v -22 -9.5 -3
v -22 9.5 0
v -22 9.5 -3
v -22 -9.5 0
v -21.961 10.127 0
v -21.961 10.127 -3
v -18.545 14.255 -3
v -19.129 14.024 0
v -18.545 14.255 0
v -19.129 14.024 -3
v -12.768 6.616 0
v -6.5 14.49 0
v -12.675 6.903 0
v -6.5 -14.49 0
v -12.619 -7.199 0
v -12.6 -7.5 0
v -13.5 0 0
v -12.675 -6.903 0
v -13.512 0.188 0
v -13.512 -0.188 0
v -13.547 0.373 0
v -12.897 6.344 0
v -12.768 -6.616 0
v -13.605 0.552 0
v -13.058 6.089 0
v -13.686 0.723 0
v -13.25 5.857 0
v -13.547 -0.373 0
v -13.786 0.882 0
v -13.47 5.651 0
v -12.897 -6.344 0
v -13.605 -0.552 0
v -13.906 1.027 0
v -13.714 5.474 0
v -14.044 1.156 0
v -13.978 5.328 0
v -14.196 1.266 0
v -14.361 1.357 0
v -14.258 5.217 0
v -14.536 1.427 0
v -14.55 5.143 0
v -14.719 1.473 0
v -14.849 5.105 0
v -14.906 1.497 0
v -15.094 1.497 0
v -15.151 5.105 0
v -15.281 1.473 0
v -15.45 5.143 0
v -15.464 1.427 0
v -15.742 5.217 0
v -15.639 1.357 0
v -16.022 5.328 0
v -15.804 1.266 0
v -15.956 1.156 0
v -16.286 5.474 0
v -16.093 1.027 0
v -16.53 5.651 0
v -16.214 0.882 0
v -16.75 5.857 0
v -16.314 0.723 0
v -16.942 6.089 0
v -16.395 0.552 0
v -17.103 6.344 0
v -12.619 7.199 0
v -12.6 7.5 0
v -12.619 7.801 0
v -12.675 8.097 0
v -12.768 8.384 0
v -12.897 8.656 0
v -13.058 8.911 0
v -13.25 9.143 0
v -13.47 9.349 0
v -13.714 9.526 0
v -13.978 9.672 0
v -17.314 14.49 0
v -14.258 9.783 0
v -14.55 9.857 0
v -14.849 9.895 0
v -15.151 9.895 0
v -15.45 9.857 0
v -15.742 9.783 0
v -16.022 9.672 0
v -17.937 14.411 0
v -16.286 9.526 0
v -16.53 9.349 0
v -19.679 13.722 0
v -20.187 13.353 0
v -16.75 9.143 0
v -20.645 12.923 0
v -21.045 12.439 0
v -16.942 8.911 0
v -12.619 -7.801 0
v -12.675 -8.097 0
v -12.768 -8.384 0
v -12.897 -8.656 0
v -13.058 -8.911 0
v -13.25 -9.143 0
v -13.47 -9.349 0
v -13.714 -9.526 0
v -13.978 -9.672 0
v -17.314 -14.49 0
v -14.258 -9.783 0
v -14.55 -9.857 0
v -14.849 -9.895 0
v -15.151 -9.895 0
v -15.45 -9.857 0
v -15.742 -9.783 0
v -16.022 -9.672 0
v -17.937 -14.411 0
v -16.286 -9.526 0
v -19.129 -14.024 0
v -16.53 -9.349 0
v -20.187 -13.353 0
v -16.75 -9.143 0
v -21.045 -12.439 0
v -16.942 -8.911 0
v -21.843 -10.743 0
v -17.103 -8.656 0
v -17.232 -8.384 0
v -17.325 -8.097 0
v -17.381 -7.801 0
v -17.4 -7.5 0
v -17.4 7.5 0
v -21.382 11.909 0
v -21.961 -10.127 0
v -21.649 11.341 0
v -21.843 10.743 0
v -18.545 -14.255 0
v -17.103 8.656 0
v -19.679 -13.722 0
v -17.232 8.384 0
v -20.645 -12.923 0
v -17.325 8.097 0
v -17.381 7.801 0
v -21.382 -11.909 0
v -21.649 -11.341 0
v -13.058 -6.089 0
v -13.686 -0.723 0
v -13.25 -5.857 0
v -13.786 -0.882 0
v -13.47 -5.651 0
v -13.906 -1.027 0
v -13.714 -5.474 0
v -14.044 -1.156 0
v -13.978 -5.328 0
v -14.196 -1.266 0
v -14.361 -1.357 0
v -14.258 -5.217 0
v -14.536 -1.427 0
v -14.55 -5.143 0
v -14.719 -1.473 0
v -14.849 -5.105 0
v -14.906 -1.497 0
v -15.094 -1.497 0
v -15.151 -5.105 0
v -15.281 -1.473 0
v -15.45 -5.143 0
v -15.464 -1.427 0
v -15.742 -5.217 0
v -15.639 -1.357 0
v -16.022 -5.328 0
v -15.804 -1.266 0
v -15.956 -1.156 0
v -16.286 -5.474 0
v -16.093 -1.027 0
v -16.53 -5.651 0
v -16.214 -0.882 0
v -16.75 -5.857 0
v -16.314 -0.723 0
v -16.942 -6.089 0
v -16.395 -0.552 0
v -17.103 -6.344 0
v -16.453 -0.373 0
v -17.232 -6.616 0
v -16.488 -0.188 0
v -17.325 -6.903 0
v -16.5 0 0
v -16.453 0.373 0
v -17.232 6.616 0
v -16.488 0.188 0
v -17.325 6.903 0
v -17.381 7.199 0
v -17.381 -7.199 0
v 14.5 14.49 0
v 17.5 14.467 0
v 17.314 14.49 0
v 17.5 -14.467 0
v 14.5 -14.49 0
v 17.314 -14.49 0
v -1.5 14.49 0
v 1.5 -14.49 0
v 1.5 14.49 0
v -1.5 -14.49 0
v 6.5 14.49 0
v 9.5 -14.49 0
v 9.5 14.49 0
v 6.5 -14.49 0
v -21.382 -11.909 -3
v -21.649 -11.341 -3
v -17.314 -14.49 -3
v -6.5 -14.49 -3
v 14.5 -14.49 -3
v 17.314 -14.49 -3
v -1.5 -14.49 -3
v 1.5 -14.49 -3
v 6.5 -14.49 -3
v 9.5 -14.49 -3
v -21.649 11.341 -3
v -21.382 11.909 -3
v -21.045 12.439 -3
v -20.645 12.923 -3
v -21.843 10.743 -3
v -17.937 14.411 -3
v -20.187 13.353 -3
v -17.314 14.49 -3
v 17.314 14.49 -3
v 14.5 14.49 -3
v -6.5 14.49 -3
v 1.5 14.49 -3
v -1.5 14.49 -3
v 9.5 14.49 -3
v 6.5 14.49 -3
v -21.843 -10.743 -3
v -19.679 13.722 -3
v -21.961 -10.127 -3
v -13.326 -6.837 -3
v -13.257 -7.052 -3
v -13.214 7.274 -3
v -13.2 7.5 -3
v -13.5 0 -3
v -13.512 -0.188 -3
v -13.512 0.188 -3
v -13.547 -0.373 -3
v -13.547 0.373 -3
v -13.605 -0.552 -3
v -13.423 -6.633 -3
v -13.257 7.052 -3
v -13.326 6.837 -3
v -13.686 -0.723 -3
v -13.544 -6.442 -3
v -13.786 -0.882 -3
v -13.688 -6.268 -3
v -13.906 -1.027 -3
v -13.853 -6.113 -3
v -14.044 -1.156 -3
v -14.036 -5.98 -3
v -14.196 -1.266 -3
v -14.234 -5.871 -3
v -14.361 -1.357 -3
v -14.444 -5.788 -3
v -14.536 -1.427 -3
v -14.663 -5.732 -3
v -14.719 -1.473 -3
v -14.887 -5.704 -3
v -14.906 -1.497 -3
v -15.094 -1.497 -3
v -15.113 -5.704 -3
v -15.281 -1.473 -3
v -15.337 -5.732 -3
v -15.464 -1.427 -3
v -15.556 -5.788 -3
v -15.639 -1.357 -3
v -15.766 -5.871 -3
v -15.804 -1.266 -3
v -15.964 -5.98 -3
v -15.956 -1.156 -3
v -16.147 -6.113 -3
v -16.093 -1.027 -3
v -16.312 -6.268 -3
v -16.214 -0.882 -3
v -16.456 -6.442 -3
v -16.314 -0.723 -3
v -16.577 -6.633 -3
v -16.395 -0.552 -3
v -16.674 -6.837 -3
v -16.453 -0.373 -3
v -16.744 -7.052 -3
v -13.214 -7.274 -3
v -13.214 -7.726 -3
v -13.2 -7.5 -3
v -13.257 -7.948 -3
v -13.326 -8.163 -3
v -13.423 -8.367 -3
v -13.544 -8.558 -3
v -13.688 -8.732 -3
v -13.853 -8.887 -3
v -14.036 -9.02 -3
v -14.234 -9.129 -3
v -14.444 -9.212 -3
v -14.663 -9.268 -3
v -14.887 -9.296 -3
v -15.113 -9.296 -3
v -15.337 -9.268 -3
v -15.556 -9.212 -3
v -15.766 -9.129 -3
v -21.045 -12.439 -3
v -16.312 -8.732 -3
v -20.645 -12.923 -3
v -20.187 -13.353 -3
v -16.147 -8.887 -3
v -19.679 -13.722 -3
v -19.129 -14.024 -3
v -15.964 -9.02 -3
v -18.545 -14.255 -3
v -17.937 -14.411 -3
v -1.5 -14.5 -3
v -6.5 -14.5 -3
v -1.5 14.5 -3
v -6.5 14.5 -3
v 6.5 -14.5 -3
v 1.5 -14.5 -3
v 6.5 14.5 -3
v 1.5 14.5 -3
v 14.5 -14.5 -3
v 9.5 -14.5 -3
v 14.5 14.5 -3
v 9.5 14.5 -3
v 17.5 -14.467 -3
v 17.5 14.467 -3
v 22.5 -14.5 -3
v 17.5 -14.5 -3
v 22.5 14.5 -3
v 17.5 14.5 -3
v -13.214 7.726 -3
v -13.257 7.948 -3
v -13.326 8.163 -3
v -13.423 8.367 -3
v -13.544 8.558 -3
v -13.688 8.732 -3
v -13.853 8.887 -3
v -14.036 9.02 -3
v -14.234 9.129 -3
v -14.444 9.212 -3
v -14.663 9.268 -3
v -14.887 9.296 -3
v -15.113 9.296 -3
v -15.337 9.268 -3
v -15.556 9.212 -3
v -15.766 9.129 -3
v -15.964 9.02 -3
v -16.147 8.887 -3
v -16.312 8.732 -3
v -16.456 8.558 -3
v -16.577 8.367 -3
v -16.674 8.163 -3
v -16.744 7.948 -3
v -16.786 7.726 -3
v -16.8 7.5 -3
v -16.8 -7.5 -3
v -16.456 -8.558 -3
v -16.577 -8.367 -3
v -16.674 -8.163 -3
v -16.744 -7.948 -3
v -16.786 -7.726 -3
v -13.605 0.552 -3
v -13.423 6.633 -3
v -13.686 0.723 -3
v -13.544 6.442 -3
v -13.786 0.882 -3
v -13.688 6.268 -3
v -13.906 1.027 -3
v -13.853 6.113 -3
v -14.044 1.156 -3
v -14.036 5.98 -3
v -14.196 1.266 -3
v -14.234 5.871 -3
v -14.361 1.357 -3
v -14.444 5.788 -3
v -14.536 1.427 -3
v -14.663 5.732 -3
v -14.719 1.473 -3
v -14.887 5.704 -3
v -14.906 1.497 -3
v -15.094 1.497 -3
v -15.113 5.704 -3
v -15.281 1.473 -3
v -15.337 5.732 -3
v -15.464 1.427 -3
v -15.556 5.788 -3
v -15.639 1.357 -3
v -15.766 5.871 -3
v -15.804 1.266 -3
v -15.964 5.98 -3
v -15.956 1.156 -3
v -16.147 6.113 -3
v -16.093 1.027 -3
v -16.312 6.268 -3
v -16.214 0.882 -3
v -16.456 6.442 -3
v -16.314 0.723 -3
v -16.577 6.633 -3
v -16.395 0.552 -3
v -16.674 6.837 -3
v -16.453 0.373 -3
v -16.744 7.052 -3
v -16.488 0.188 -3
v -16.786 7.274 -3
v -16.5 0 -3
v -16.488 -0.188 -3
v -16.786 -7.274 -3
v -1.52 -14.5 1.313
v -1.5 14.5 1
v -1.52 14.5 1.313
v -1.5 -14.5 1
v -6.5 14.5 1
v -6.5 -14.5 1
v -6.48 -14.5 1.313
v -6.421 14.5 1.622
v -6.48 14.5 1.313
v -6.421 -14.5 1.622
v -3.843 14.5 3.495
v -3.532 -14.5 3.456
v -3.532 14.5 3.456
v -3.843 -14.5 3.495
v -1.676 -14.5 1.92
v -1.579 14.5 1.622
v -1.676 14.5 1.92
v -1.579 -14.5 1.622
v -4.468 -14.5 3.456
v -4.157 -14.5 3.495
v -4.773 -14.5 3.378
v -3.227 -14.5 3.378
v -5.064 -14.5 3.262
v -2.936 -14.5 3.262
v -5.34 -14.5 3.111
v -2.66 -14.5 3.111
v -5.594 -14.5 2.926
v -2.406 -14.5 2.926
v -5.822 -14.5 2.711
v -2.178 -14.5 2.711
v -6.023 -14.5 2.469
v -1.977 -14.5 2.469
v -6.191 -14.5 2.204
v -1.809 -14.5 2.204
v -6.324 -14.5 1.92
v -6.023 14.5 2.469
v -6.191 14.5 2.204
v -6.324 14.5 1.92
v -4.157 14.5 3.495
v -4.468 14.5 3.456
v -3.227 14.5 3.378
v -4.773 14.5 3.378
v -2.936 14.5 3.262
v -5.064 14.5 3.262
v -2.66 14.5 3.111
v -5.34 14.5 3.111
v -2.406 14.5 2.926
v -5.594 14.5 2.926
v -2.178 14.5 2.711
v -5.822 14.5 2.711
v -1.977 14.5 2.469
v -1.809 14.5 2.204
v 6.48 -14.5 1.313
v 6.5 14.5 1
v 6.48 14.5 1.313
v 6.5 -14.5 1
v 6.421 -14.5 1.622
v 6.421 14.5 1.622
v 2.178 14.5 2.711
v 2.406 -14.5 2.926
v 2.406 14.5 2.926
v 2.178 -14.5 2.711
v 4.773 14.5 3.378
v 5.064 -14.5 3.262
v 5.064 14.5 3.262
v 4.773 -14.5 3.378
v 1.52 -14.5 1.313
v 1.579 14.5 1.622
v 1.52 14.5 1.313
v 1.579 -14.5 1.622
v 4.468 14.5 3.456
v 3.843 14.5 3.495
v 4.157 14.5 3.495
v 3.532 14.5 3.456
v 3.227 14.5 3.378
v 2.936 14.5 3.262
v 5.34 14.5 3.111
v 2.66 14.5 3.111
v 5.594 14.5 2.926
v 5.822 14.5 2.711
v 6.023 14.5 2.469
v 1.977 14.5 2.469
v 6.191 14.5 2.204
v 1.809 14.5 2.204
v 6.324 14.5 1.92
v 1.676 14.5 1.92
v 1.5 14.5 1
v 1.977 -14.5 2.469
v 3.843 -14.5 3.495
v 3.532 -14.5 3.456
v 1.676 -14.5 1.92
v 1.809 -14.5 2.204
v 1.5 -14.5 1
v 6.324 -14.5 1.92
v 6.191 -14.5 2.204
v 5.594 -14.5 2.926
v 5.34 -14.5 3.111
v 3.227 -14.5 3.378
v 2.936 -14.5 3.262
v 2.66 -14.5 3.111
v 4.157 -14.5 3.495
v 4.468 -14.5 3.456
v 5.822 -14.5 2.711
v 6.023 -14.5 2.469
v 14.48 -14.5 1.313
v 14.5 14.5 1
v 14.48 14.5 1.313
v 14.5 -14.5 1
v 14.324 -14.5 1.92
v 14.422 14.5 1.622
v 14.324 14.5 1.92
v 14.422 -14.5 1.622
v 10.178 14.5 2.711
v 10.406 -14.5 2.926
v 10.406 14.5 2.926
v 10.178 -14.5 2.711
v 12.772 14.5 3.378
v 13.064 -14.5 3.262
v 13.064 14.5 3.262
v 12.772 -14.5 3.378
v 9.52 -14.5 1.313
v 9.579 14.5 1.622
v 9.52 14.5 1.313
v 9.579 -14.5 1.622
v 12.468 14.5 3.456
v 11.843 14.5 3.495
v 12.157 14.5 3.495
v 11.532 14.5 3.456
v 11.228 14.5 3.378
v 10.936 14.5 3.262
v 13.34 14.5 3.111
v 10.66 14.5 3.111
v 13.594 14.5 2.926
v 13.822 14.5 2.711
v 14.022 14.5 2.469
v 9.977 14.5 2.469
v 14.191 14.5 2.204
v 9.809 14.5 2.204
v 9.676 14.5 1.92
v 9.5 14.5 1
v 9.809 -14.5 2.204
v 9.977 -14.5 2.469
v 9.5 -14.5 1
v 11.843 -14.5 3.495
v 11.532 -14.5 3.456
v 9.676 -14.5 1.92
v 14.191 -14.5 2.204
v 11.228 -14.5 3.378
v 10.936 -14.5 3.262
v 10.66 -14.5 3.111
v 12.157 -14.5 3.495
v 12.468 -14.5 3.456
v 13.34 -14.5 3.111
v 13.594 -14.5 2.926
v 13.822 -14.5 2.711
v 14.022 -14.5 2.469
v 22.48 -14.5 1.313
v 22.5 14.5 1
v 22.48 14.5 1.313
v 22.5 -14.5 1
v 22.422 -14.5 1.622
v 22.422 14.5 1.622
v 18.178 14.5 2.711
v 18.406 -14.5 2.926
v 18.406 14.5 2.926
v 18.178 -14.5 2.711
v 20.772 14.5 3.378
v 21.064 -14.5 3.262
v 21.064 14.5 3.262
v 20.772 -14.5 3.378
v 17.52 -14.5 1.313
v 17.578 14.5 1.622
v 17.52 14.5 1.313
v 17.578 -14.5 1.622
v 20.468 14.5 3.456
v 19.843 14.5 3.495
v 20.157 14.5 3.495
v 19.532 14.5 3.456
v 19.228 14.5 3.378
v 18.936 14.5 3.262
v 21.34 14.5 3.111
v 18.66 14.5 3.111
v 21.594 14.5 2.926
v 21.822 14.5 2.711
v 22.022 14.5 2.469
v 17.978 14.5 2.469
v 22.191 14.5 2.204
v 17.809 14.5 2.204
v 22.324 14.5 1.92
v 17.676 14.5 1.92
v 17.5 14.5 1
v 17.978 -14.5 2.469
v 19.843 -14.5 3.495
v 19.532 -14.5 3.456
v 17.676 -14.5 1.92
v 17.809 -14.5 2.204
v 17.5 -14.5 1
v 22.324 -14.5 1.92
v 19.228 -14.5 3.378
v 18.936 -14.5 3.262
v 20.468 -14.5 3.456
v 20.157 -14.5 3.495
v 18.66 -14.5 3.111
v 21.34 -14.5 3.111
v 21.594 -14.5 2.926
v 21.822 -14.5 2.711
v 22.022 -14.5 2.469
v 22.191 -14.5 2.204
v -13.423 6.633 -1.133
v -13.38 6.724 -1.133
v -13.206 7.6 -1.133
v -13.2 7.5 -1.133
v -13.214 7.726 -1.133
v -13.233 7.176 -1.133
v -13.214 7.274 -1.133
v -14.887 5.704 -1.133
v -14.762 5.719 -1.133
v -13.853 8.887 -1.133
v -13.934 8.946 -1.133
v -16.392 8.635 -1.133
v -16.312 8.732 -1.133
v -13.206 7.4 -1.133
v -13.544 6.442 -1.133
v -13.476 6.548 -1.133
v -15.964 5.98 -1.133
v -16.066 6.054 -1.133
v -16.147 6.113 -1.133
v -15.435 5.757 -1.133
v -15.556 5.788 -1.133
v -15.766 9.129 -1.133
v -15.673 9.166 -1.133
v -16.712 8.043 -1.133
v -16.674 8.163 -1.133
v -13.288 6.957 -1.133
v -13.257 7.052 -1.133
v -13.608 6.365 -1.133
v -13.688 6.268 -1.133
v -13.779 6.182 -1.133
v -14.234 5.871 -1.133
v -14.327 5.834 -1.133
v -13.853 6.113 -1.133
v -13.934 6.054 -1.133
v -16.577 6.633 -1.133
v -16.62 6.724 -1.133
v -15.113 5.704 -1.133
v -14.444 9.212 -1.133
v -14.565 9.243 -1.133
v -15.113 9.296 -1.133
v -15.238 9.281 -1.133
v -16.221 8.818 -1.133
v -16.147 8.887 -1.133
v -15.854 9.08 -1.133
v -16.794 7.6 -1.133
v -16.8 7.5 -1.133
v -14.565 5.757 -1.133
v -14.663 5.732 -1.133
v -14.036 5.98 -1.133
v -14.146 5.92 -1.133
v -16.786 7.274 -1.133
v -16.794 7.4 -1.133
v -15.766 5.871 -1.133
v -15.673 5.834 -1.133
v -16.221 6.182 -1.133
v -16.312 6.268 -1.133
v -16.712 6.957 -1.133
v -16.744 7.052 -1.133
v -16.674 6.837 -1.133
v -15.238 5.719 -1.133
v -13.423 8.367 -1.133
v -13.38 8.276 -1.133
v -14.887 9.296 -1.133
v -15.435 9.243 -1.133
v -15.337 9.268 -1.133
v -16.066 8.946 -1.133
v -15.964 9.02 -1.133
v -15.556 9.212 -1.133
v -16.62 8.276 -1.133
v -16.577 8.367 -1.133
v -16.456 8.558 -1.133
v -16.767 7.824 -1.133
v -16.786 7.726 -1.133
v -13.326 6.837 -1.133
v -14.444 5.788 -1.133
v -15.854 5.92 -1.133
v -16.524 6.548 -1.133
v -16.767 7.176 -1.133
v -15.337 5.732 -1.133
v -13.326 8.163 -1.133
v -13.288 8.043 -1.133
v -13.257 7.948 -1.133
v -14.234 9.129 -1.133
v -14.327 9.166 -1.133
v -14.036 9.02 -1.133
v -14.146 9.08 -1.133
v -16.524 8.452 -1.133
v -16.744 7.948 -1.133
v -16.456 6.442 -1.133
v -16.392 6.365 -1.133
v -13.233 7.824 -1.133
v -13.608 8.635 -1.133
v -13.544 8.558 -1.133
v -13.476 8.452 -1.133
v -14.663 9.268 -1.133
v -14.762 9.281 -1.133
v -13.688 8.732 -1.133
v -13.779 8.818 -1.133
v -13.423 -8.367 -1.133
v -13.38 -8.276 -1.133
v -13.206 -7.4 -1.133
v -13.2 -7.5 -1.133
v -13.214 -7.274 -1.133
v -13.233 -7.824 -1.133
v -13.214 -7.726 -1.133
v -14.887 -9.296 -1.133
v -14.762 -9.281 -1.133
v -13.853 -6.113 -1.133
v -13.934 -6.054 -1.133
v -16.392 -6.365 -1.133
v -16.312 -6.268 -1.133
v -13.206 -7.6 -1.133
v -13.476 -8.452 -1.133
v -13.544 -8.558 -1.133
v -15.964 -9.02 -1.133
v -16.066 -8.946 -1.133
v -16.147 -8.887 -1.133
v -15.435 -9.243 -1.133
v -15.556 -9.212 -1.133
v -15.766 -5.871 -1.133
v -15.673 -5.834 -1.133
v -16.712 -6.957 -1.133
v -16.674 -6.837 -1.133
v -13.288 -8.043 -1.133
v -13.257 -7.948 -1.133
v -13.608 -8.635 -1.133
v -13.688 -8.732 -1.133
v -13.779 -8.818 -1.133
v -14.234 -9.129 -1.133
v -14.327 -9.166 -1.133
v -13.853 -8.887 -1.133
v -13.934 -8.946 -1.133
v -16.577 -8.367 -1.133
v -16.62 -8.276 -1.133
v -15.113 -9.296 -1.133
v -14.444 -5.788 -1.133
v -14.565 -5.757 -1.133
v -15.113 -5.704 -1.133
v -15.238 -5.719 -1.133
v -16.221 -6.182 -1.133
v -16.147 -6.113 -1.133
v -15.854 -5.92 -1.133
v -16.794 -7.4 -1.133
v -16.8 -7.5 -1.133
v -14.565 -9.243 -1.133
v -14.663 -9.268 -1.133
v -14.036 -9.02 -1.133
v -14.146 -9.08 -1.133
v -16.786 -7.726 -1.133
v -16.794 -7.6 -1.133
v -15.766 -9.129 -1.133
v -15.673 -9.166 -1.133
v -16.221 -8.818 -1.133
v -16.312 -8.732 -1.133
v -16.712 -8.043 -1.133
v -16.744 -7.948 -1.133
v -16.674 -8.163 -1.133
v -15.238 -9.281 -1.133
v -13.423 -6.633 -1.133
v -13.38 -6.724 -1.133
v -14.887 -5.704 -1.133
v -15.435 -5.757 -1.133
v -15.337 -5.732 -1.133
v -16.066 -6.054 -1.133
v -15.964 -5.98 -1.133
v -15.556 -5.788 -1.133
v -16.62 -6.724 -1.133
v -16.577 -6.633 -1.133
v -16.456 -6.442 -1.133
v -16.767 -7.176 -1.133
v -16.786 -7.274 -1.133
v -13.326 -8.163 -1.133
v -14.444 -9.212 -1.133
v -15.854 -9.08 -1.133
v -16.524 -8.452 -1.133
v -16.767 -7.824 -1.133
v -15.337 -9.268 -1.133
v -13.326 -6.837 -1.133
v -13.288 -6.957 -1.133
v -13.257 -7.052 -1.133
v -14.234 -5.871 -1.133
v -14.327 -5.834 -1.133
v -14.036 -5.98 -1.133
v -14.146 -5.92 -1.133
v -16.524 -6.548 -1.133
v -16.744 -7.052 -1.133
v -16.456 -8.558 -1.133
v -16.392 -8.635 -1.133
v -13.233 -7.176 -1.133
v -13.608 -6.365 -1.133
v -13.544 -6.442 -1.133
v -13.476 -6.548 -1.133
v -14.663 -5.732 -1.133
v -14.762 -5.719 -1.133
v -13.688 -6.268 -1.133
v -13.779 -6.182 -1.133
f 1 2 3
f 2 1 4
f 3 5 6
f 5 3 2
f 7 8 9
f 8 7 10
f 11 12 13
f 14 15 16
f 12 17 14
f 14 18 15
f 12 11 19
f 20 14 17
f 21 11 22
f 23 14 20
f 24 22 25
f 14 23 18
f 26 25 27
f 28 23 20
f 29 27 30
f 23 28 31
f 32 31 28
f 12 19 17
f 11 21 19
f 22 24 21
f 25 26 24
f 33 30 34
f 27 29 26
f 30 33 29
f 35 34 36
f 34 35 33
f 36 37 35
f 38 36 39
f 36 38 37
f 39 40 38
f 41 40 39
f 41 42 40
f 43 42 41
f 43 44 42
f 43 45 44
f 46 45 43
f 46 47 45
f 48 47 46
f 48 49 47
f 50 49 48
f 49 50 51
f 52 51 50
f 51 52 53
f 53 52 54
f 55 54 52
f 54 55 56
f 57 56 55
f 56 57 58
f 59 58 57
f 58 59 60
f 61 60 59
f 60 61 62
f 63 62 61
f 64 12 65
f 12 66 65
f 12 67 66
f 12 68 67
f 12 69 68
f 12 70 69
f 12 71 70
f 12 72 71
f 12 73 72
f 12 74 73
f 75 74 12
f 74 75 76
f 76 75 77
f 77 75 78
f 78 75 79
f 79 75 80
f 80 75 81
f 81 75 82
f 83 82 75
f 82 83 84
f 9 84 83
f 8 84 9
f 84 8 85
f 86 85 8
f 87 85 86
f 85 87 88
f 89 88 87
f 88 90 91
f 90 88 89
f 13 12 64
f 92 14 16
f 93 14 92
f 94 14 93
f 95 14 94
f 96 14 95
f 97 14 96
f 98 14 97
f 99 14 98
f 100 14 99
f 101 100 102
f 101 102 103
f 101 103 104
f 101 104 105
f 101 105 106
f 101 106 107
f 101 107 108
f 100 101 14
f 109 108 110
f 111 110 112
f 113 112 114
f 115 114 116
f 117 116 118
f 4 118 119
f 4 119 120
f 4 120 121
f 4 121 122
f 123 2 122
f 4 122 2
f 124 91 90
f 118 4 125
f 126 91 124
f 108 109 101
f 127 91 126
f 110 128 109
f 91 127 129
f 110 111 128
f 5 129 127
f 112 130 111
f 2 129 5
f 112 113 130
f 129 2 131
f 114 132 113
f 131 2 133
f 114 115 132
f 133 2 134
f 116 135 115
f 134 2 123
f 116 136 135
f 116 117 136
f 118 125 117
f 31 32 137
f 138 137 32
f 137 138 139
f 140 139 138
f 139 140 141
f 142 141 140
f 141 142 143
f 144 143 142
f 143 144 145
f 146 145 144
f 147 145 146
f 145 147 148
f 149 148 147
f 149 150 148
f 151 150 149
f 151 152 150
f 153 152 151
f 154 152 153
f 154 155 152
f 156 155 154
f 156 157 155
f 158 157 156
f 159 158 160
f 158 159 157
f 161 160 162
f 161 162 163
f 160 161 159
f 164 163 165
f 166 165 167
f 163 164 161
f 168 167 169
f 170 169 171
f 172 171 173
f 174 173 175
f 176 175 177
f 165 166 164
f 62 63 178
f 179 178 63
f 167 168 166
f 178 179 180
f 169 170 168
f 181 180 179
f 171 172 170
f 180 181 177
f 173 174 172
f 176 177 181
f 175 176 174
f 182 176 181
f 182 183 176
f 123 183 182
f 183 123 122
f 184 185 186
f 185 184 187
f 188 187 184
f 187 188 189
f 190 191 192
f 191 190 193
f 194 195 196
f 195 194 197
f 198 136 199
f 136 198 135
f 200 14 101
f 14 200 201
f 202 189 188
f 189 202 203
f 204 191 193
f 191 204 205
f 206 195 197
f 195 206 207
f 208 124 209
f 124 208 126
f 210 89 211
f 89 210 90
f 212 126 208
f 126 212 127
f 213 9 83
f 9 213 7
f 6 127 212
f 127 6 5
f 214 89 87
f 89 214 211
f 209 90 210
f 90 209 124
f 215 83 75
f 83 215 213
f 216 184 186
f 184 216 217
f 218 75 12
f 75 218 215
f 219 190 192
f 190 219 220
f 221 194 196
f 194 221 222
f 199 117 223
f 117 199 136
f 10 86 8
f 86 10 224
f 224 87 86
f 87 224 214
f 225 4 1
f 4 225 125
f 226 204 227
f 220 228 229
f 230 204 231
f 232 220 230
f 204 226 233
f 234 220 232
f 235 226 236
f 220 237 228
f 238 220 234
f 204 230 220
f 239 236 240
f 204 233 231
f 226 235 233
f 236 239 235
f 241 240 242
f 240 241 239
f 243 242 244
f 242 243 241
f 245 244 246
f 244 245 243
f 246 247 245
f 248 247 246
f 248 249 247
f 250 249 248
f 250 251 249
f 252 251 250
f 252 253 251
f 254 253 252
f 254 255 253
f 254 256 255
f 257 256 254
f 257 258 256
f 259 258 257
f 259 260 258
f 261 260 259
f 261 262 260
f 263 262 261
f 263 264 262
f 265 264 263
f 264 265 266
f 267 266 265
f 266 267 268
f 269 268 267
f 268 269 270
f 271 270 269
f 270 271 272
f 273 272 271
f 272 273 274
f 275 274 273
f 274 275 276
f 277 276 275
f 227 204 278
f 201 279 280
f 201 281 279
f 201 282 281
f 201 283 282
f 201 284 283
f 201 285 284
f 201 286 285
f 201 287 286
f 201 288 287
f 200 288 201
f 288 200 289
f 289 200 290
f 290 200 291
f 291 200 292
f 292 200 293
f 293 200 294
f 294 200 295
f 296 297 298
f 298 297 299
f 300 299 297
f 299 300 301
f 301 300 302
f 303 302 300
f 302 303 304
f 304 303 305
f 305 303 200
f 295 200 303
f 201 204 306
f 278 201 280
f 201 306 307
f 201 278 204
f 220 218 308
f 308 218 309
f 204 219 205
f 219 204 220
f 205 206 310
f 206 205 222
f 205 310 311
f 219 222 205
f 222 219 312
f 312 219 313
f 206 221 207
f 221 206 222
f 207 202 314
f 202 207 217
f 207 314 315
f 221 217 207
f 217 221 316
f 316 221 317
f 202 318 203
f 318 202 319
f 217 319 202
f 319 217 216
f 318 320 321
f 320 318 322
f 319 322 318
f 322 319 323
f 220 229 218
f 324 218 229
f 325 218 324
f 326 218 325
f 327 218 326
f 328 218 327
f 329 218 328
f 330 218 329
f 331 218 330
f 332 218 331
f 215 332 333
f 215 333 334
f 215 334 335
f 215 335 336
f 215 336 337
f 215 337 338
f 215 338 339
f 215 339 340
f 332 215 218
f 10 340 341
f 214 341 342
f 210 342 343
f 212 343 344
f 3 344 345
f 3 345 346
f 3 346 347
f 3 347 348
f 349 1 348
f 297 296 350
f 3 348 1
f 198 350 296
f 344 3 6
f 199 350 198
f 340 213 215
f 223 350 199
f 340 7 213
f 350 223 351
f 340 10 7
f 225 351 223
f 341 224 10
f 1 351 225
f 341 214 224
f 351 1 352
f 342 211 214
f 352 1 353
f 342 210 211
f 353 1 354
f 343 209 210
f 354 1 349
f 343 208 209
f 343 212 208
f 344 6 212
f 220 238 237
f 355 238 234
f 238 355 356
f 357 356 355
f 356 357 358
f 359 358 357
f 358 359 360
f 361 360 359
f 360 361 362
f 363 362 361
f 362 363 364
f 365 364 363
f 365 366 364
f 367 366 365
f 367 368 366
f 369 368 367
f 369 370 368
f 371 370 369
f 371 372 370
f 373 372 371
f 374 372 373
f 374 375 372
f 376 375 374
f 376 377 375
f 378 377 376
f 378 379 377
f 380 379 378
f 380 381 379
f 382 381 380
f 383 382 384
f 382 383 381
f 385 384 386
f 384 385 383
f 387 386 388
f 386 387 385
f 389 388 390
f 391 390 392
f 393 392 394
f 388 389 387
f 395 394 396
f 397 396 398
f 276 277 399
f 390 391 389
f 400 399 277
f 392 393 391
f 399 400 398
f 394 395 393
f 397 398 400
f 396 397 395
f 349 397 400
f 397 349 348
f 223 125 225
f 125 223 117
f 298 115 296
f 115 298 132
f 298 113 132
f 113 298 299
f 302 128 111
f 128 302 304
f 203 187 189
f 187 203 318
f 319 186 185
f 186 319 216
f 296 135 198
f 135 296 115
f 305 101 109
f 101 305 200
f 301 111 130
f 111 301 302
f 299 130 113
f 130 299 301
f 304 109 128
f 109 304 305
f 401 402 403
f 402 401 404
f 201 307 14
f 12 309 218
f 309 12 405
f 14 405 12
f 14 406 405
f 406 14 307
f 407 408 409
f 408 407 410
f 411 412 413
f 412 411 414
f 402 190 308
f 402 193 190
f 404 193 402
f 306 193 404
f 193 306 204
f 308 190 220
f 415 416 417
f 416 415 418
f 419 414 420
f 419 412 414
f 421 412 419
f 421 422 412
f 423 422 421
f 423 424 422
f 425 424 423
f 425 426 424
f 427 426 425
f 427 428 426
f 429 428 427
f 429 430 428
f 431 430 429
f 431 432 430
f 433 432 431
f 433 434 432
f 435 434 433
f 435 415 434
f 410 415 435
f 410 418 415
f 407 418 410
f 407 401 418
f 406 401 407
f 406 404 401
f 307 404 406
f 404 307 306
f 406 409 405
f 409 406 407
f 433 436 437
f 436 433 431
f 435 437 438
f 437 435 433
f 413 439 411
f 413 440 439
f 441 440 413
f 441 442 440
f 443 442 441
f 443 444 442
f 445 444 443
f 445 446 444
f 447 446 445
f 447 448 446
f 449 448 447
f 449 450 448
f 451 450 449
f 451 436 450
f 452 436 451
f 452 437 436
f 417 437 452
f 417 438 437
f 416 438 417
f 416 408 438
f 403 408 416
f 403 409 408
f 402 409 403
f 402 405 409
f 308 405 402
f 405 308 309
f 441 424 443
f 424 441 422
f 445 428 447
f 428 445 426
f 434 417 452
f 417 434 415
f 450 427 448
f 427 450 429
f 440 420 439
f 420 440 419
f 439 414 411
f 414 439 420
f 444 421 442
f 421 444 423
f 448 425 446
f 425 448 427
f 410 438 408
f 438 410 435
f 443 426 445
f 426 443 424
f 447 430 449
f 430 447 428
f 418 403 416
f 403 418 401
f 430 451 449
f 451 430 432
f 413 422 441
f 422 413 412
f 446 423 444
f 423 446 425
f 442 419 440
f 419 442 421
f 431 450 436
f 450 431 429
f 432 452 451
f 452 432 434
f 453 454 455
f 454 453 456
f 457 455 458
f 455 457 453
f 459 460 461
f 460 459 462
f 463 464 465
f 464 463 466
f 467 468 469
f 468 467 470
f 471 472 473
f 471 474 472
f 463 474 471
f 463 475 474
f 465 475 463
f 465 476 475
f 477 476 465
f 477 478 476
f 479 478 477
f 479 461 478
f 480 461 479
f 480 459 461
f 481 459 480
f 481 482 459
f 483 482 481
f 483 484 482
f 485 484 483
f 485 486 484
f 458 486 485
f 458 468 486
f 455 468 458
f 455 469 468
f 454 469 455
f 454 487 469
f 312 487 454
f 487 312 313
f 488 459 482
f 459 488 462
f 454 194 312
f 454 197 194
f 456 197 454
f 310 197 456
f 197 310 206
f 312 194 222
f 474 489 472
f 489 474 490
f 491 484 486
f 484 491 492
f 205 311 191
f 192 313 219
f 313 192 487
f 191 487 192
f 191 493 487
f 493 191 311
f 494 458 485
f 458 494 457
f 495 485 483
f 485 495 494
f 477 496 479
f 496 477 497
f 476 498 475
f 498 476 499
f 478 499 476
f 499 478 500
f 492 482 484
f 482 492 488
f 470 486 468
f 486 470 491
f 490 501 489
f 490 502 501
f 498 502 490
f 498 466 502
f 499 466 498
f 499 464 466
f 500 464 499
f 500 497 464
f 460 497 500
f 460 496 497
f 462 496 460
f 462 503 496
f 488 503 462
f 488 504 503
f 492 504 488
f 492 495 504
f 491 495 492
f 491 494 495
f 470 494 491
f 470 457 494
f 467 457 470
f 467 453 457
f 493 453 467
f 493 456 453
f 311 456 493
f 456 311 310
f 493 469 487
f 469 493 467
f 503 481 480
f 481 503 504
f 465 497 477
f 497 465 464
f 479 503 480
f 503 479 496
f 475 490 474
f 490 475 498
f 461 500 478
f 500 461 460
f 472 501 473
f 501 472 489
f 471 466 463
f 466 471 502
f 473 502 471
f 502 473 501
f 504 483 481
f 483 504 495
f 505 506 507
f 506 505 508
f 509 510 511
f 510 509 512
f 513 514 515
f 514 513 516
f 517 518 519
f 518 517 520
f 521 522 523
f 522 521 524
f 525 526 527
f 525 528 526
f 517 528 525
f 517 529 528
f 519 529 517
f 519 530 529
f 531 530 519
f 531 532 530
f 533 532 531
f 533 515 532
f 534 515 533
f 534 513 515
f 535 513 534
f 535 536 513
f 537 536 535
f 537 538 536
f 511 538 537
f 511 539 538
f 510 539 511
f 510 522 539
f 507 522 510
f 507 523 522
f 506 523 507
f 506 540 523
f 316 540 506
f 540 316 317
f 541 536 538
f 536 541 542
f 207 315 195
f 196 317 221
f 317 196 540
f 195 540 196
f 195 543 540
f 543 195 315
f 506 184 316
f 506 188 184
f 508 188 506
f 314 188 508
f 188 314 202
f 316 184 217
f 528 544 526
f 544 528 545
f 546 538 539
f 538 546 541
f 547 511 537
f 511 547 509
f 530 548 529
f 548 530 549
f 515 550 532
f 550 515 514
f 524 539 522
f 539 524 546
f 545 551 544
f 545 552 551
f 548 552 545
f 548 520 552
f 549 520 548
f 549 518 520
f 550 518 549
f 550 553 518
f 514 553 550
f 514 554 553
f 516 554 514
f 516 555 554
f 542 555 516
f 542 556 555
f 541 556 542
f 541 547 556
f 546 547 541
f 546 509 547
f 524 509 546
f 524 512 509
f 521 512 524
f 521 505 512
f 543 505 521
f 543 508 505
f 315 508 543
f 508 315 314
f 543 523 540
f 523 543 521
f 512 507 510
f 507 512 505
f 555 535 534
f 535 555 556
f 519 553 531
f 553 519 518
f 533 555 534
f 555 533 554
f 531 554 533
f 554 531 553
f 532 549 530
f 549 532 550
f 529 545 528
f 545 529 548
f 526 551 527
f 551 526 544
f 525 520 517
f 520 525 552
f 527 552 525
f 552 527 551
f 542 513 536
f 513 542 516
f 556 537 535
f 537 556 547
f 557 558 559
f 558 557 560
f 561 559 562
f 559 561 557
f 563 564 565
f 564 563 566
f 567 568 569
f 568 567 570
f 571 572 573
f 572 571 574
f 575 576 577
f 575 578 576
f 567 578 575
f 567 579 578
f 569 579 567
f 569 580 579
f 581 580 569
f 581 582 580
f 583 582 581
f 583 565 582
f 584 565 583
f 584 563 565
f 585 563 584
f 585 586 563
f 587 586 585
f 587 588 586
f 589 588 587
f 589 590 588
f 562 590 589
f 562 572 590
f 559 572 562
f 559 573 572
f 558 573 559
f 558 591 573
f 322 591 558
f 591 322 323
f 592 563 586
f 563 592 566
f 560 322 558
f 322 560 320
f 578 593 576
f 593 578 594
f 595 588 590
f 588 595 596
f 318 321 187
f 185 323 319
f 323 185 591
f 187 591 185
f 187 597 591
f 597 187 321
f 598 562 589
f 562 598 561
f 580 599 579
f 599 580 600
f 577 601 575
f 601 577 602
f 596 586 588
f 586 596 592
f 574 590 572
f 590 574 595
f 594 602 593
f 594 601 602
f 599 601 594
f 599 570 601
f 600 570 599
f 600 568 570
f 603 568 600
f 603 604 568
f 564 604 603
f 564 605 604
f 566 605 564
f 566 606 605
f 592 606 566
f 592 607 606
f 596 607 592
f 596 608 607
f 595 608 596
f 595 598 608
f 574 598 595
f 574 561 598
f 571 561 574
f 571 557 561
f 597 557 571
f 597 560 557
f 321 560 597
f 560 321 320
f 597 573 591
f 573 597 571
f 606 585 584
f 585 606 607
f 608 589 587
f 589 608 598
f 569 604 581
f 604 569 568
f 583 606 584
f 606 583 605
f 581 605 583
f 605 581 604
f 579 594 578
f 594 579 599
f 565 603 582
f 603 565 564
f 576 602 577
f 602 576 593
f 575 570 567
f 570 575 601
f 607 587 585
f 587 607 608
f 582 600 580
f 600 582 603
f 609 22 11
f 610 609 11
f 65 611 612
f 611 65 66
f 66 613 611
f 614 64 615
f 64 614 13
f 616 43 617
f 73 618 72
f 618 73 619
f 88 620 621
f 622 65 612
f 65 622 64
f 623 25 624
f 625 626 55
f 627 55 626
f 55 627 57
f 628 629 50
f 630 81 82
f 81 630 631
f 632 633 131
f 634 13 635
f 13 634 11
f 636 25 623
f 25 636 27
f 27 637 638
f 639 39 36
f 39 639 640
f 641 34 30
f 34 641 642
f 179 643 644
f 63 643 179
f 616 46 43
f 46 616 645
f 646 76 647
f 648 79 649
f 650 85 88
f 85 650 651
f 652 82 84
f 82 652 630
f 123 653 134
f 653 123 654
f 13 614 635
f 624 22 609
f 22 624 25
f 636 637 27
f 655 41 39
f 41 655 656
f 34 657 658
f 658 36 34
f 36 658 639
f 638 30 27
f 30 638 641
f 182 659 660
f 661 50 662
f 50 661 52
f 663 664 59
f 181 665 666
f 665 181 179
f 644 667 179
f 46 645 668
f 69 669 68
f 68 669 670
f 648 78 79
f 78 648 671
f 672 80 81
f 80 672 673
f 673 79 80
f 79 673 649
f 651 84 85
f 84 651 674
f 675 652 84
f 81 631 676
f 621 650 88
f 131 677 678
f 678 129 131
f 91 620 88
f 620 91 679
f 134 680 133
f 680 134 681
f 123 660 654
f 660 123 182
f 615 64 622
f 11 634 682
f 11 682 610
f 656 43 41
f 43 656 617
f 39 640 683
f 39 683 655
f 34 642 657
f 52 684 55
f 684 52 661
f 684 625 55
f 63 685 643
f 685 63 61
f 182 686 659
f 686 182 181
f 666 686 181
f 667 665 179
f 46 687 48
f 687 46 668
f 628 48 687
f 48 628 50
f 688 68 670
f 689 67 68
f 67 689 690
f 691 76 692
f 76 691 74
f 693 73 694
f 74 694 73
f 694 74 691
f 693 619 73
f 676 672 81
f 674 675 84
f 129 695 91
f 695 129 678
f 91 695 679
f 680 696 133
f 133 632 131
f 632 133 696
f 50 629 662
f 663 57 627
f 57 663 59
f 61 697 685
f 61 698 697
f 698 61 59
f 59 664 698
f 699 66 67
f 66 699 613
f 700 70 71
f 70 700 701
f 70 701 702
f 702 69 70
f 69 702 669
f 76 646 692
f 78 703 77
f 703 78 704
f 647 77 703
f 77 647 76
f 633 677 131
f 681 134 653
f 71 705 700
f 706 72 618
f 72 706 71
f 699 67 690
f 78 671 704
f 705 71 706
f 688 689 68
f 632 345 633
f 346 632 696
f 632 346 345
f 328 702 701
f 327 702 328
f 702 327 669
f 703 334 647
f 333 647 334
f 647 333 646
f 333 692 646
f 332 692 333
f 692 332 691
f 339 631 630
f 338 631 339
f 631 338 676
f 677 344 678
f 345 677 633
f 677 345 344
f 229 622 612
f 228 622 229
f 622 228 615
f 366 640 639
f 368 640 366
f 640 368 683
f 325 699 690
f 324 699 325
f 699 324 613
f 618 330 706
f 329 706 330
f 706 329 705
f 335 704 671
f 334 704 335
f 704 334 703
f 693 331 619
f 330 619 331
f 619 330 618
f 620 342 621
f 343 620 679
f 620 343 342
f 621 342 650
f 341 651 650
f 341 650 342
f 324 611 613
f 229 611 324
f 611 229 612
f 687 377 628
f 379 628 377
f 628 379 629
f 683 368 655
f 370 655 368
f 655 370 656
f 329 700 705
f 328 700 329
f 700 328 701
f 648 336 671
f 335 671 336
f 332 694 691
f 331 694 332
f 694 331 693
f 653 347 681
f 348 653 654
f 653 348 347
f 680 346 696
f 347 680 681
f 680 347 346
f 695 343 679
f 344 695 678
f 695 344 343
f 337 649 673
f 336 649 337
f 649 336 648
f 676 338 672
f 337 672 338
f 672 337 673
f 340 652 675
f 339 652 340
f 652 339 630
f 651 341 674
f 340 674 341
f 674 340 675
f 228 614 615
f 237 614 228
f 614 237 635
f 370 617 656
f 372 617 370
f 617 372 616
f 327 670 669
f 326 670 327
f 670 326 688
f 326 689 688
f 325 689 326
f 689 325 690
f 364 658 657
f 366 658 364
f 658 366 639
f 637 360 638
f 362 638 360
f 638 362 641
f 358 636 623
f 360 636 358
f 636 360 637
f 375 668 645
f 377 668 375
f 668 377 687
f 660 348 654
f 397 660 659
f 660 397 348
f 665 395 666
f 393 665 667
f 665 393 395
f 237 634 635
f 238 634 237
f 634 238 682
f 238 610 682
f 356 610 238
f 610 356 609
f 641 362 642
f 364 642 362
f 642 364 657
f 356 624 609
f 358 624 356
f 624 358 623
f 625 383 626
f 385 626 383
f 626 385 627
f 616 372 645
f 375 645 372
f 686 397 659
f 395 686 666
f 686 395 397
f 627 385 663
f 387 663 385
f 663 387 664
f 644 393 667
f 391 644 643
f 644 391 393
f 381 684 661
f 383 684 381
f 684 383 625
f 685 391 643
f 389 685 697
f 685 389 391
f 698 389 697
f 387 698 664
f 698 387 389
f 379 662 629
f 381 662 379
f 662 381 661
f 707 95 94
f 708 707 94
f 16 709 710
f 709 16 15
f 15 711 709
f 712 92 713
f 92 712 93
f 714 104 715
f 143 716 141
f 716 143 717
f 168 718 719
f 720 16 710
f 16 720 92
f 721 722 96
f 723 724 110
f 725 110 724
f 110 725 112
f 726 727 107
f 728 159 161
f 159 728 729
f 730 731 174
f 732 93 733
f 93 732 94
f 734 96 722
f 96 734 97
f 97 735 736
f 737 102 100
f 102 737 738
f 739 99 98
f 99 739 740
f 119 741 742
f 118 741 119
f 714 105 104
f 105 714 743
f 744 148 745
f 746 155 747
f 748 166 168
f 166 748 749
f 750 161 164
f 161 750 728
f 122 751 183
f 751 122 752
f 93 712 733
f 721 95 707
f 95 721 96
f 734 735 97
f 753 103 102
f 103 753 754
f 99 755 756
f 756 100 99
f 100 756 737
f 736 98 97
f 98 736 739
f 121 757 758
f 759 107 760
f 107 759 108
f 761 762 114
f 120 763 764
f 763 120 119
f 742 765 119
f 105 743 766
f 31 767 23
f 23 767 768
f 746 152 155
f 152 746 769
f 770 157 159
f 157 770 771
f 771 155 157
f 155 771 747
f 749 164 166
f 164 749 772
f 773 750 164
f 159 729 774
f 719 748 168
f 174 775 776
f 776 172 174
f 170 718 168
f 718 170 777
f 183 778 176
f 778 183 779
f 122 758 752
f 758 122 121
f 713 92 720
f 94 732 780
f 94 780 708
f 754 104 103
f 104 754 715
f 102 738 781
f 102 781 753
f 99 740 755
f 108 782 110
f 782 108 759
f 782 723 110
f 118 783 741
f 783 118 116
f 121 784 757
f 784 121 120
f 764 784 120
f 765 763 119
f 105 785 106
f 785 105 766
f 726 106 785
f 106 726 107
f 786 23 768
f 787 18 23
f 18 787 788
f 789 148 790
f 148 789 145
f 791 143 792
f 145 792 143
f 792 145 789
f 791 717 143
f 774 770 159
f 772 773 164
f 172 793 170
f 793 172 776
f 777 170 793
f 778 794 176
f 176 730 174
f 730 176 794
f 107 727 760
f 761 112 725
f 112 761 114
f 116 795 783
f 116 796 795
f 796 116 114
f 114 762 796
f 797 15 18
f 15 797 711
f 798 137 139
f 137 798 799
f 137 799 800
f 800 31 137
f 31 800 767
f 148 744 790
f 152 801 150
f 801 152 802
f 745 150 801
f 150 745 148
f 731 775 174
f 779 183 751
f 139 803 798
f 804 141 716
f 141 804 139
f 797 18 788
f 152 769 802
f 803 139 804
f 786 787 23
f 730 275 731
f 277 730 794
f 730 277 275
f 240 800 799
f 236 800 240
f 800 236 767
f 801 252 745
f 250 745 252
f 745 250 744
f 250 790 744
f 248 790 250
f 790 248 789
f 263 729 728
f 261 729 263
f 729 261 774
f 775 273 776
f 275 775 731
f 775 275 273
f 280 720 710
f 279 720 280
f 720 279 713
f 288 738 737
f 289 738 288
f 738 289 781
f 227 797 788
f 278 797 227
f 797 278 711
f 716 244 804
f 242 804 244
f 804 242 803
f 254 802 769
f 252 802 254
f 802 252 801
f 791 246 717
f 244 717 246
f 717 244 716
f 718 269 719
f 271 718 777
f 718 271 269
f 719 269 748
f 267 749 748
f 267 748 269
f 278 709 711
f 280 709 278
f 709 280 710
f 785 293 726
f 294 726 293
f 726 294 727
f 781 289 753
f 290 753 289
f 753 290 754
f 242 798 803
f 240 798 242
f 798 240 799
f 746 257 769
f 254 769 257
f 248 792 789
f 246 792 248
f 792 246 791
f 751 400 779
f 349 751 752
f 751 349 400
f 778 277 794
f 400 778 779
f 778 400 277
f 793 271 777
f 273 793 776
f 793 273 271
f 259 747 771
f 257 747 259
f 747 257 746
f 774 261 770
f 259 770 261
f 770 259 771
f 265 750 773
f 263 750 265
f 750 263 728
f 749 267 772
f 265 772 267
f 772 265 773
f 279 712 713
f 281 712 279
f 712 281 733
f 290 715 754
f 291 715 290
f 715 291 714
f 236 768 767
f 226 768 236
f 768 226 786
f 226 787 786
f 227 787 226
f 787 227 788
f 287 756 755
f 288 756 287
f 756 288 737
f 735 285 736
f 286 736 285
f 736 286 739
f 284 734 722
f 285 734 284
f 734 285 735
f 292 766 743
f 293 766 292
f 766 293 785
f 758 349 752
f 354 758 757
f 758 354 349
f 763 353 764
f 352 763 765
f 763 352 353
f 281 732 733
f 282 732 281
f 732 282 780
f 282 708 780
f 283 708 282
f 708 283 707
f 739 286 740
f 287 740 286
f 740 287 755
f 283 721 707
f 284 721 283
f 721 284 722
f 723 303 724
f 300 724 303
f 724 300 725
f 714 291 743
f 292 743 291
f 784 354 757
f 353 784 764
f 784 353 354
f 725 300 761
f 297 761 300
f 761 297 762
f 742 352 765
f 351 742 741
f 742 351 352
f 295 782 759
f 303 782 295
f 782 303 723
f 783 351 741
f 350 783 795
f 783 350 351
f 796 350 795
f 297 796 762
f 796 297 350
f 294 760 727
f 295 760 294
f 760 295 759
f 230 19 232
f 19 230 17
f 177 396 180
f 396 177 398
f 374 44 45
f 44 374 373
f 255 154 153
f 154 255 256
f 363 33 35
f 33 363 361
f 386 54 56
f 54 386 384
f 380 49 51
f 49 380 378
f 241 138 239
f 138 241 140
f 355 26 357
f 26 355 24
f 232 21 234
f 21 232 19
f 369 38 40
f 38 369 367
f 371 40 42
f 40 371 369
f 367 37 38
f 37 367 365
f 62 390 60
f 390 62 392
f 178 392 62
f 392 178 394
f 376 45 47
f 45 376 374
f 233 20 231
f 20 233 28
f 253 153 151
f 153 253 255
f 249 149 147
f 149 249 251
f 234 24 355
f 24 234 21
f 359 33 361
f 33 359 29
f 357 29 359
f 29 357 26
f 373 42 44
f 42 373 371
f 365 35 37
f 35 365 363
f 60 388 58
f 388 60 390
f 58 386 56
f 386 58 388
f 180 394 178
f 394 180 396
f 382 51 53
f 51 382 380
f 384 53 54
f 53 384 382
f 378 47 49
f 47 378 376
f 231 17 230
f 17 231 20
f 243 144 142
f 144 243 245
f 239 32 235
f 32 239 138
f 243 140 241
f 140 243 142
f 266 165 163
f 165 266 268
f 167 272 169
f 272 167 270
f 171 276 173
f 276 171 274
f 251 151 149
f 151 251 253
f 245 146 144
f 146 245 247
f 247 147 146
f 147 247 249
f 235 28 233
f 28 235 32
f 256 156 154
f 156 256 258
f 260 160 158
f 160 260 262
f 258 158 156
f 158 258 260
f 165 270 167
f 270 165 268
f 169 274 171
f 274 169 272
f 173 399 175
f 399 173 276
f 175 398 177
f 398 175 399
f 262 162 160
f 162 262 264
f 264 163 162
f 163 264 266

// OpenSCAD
$fn = 50;


difference() {
	union() {
		translate(v = [0, 0, -3]) {
			hull() {
				translate(v = [-17.0000000000, 9.5000000000, 0]) {
					cylinder(h = 3, r = 5);
				}
				translate(v = [17.0000000000, 9.5000000000, 0]) {
					cylinder(h = 3, r = 5);
				}
				translate(v = [-17.0000000000, -9.5000000000, 0]) {
					cylinder(h = 3, r = 5);
				}
				translate(v = [17.0000000000, -9.5000000000, 0]) {
					cylinder(h = 3, r = 5);
				}
			}
		}
		translate(v = [-4.0000000000, 14.5000000000, -1.5000000000]) {
			rotate(a = [90, 0, 0]) {
				hull() {
					translate(v = [-0.0000000000, 2.5000000000, 0]) {
						cylinder(h = 29, r = 2.5000000000);
					}
					translate(v = [0.0000000000, 2.5000000000, 0]) {
						cylinder(h = 29, r = 2.5000000000);
					}
					translate(v = [-0.0000000000, -2.5000000000, 0]) {
						cylinder(h = 29, r = 2.5000000000);
					}
					translate(v = [0.0000000000, -2.5000000000, 0]) {
						cylinder(h = 29, r = 2.5000000000);
					}
				}
			}
		}
		translate(v = [4.0000000000, 14.5000000000, -1.5000000000]) {
			rotate(a = [90, 0, 0]) {
				hull() {
					translate(v = [-0.0000000000, 2.5000000000, 0]) {
						cylinder(h = 29, r = 2.5000000000);
					}
					translate(v = [0.0000000000, 2.5000000000, 0]) {
						cylinder(h = 29, r = 2.5000000000);
					}
					translate(v = [-0.0000000000, -2.5000000000, 0]) {
						cylinder(h = 29, r = 2.5000000000);
					}
					translate(v = [0.0000000000, -2.5000000000, 0]) {
						cylinder(h = 29, r = 2.5000000000);
					}
				}
			}
		}
		translate(v = [12.0000000000, 14.5000000000, -1.5000000000]) {
			rotate(a = [90, 0, 0]) {
				hull() {
					translate(v = [-0.0000000000, 2.5000000000, 0]) {
						cylinder(h = 29, r = 2.5000000000);
					}
					translate(v = [0.0000000000, 2.5000000000, 0]) {
						cylinder(h = 29, r = 2.5000000000);
					}
					translate(v = [-0.0000000000, -2.5000000000, 0]) {
						cylinder(h = 29, r = 2.5000000000);
					}
					translate(v = [0.0000000000, -2.5000000000, 0]) {
						cylinder(h = 29, r = 2.5000000000);
					}
				}
			}
		}
		translate(v = [20.0000000000, 14.5000000000, -1.5000000000]) {
			rotate(a = [90, 0, 0]) {
				hull() {
					translate(v = [-0.0000000000, 2.5000000000, 0]) {
						cylinder(h = 29, r = 2.5000000000);
					}
					translate(v = [0.0000000000, 2.5000000000, 0]) {
						cylinder(h = 29, r = 2.5000000000);
					}
					translate(v = [-0.0000000000, -2.5000000000, 0]) {
						cylinder(h = 29, r = 2.5000000000);
					}
					translate(v = [0.0000000000, -2.5000000000, 0]) {
						cylinder(h = 29, r = 2.5000000000);
					}
				}
			}
		}
	}
	union() {
		translate(v = [-15.0000000000, 7.5000000000, 0]) {
			rotate(a = [0, 0, 0]) {
				difference() {
					union() {
						translate(v = [0, 0, -1.7000000000]) {
							cylinder(h = 1.7000000000, r1 = 1.5000000000, r2 = 2.4000000000);
						}
						translate(v = [0, 0, -3.0000000000]) {
							cylinder(h = 3, r = 1.5000000000);
						}
						translate(v = [0, 0, -3.0000000000]) {
							cylinder(h = 3, r = 1.8000000000);
						}
						translate(v = [0, 0, -3.0000000000]) {
							cylinder(h = 3, r = 1.5000000000);
						}
					}
					union();
				}
			}
		}
		translate(v = [-15.0000000000, -7.5000000000, 0]) {
			rotate(a = [0, 0, 0]) {
				difference() {
					union() {
						translate(v = [0, 0, -1.7000000000]) {
							cylinder(h = 1.7000000000, r1 = 1.5000000000, r2 = 2.4000000000);
						}
						translate(v = [0, 0, -3.0000000000]) {
							cylinder(h = 3, r = 1.5000000000);
						}
						translate(v = [0, 0, -3.0000000000]) {
							cylinder(h = 3, r = 1.8000000000);
						}
						translate(v = [0, 0, -3.0000000000]) {
							cylinder(h = 3, r = 1.5000000000);
						}
					}
					union();
				}
			}
		}
		translate(v = [-250.0000000000, -250.0000000000, -503]) {
			cube(size = [500, 500, 500]);
		}
		translate(v = [-250.0000000000, -250.0000000000, -503]) {
			cube(size = [500, 500, 500]);
		}
		translate(v = [-250.0000000000, -250.0000000000, -503]) {
			cube(size = [500, 500, 500]);
		}
		translate(v = [-15.0000000000, -7.5000000000, -100.0000000000]) {
			cylinder(h = 200, r = 1.5000000000);
		}
		translate(v = [-15.0000000000, 7.5000000000, -100.0000000000]) {
			cylinder(h = 200, r = 1.5000000000);
		}
		translate(v = [-15.0000000000, -7.5000000000, -100.0000000000]) {
			cylinder(h = 200, r = 1.5000000000);
		}
		translate(v = [-15.0000000000, 0.0000000000, -100.0000000000]) {
			cylinder(h = 200, r = 1.5000000000);
		}
		translate(v = [-15.0000000000, 7.5000000000, -100.0000000000]) {
			cylinder(h = 200, r = 1.5000000000);
		}
		translate(v = [-15.0000000000, -7.5000000000, -100.0000000000]) {
			cylinder(h = 200, r = 1.5000000000);
		}
		translate(v = [-15.0000000000, 0.0000000000, -100.0000000000]) {
			cylinder(h = 200, r = 1.5000000000);
		}
		translate(v = [-15.0000000000, 7.5000000000, -100.0000000000]) {
			cylinder(h = 200, r = 1.5000000000);
		}
		translate(v = [-15.0000000000, -7.5000000000, -100.0000000000]) {
			cylinder(h = 200, r = 1.5000000000);
		}
		translate(v = [-15.0000000000, 0.0000000000, -100.0000000000]) {
			cylinder(h = 200, r = 1.5000000000);
		}
		translate(v = [-15.0000000000, 7.5000000000, -100.0000000000]) {
			cylinder(h = 200, r = 1.5000000000);
		}
	}
}
